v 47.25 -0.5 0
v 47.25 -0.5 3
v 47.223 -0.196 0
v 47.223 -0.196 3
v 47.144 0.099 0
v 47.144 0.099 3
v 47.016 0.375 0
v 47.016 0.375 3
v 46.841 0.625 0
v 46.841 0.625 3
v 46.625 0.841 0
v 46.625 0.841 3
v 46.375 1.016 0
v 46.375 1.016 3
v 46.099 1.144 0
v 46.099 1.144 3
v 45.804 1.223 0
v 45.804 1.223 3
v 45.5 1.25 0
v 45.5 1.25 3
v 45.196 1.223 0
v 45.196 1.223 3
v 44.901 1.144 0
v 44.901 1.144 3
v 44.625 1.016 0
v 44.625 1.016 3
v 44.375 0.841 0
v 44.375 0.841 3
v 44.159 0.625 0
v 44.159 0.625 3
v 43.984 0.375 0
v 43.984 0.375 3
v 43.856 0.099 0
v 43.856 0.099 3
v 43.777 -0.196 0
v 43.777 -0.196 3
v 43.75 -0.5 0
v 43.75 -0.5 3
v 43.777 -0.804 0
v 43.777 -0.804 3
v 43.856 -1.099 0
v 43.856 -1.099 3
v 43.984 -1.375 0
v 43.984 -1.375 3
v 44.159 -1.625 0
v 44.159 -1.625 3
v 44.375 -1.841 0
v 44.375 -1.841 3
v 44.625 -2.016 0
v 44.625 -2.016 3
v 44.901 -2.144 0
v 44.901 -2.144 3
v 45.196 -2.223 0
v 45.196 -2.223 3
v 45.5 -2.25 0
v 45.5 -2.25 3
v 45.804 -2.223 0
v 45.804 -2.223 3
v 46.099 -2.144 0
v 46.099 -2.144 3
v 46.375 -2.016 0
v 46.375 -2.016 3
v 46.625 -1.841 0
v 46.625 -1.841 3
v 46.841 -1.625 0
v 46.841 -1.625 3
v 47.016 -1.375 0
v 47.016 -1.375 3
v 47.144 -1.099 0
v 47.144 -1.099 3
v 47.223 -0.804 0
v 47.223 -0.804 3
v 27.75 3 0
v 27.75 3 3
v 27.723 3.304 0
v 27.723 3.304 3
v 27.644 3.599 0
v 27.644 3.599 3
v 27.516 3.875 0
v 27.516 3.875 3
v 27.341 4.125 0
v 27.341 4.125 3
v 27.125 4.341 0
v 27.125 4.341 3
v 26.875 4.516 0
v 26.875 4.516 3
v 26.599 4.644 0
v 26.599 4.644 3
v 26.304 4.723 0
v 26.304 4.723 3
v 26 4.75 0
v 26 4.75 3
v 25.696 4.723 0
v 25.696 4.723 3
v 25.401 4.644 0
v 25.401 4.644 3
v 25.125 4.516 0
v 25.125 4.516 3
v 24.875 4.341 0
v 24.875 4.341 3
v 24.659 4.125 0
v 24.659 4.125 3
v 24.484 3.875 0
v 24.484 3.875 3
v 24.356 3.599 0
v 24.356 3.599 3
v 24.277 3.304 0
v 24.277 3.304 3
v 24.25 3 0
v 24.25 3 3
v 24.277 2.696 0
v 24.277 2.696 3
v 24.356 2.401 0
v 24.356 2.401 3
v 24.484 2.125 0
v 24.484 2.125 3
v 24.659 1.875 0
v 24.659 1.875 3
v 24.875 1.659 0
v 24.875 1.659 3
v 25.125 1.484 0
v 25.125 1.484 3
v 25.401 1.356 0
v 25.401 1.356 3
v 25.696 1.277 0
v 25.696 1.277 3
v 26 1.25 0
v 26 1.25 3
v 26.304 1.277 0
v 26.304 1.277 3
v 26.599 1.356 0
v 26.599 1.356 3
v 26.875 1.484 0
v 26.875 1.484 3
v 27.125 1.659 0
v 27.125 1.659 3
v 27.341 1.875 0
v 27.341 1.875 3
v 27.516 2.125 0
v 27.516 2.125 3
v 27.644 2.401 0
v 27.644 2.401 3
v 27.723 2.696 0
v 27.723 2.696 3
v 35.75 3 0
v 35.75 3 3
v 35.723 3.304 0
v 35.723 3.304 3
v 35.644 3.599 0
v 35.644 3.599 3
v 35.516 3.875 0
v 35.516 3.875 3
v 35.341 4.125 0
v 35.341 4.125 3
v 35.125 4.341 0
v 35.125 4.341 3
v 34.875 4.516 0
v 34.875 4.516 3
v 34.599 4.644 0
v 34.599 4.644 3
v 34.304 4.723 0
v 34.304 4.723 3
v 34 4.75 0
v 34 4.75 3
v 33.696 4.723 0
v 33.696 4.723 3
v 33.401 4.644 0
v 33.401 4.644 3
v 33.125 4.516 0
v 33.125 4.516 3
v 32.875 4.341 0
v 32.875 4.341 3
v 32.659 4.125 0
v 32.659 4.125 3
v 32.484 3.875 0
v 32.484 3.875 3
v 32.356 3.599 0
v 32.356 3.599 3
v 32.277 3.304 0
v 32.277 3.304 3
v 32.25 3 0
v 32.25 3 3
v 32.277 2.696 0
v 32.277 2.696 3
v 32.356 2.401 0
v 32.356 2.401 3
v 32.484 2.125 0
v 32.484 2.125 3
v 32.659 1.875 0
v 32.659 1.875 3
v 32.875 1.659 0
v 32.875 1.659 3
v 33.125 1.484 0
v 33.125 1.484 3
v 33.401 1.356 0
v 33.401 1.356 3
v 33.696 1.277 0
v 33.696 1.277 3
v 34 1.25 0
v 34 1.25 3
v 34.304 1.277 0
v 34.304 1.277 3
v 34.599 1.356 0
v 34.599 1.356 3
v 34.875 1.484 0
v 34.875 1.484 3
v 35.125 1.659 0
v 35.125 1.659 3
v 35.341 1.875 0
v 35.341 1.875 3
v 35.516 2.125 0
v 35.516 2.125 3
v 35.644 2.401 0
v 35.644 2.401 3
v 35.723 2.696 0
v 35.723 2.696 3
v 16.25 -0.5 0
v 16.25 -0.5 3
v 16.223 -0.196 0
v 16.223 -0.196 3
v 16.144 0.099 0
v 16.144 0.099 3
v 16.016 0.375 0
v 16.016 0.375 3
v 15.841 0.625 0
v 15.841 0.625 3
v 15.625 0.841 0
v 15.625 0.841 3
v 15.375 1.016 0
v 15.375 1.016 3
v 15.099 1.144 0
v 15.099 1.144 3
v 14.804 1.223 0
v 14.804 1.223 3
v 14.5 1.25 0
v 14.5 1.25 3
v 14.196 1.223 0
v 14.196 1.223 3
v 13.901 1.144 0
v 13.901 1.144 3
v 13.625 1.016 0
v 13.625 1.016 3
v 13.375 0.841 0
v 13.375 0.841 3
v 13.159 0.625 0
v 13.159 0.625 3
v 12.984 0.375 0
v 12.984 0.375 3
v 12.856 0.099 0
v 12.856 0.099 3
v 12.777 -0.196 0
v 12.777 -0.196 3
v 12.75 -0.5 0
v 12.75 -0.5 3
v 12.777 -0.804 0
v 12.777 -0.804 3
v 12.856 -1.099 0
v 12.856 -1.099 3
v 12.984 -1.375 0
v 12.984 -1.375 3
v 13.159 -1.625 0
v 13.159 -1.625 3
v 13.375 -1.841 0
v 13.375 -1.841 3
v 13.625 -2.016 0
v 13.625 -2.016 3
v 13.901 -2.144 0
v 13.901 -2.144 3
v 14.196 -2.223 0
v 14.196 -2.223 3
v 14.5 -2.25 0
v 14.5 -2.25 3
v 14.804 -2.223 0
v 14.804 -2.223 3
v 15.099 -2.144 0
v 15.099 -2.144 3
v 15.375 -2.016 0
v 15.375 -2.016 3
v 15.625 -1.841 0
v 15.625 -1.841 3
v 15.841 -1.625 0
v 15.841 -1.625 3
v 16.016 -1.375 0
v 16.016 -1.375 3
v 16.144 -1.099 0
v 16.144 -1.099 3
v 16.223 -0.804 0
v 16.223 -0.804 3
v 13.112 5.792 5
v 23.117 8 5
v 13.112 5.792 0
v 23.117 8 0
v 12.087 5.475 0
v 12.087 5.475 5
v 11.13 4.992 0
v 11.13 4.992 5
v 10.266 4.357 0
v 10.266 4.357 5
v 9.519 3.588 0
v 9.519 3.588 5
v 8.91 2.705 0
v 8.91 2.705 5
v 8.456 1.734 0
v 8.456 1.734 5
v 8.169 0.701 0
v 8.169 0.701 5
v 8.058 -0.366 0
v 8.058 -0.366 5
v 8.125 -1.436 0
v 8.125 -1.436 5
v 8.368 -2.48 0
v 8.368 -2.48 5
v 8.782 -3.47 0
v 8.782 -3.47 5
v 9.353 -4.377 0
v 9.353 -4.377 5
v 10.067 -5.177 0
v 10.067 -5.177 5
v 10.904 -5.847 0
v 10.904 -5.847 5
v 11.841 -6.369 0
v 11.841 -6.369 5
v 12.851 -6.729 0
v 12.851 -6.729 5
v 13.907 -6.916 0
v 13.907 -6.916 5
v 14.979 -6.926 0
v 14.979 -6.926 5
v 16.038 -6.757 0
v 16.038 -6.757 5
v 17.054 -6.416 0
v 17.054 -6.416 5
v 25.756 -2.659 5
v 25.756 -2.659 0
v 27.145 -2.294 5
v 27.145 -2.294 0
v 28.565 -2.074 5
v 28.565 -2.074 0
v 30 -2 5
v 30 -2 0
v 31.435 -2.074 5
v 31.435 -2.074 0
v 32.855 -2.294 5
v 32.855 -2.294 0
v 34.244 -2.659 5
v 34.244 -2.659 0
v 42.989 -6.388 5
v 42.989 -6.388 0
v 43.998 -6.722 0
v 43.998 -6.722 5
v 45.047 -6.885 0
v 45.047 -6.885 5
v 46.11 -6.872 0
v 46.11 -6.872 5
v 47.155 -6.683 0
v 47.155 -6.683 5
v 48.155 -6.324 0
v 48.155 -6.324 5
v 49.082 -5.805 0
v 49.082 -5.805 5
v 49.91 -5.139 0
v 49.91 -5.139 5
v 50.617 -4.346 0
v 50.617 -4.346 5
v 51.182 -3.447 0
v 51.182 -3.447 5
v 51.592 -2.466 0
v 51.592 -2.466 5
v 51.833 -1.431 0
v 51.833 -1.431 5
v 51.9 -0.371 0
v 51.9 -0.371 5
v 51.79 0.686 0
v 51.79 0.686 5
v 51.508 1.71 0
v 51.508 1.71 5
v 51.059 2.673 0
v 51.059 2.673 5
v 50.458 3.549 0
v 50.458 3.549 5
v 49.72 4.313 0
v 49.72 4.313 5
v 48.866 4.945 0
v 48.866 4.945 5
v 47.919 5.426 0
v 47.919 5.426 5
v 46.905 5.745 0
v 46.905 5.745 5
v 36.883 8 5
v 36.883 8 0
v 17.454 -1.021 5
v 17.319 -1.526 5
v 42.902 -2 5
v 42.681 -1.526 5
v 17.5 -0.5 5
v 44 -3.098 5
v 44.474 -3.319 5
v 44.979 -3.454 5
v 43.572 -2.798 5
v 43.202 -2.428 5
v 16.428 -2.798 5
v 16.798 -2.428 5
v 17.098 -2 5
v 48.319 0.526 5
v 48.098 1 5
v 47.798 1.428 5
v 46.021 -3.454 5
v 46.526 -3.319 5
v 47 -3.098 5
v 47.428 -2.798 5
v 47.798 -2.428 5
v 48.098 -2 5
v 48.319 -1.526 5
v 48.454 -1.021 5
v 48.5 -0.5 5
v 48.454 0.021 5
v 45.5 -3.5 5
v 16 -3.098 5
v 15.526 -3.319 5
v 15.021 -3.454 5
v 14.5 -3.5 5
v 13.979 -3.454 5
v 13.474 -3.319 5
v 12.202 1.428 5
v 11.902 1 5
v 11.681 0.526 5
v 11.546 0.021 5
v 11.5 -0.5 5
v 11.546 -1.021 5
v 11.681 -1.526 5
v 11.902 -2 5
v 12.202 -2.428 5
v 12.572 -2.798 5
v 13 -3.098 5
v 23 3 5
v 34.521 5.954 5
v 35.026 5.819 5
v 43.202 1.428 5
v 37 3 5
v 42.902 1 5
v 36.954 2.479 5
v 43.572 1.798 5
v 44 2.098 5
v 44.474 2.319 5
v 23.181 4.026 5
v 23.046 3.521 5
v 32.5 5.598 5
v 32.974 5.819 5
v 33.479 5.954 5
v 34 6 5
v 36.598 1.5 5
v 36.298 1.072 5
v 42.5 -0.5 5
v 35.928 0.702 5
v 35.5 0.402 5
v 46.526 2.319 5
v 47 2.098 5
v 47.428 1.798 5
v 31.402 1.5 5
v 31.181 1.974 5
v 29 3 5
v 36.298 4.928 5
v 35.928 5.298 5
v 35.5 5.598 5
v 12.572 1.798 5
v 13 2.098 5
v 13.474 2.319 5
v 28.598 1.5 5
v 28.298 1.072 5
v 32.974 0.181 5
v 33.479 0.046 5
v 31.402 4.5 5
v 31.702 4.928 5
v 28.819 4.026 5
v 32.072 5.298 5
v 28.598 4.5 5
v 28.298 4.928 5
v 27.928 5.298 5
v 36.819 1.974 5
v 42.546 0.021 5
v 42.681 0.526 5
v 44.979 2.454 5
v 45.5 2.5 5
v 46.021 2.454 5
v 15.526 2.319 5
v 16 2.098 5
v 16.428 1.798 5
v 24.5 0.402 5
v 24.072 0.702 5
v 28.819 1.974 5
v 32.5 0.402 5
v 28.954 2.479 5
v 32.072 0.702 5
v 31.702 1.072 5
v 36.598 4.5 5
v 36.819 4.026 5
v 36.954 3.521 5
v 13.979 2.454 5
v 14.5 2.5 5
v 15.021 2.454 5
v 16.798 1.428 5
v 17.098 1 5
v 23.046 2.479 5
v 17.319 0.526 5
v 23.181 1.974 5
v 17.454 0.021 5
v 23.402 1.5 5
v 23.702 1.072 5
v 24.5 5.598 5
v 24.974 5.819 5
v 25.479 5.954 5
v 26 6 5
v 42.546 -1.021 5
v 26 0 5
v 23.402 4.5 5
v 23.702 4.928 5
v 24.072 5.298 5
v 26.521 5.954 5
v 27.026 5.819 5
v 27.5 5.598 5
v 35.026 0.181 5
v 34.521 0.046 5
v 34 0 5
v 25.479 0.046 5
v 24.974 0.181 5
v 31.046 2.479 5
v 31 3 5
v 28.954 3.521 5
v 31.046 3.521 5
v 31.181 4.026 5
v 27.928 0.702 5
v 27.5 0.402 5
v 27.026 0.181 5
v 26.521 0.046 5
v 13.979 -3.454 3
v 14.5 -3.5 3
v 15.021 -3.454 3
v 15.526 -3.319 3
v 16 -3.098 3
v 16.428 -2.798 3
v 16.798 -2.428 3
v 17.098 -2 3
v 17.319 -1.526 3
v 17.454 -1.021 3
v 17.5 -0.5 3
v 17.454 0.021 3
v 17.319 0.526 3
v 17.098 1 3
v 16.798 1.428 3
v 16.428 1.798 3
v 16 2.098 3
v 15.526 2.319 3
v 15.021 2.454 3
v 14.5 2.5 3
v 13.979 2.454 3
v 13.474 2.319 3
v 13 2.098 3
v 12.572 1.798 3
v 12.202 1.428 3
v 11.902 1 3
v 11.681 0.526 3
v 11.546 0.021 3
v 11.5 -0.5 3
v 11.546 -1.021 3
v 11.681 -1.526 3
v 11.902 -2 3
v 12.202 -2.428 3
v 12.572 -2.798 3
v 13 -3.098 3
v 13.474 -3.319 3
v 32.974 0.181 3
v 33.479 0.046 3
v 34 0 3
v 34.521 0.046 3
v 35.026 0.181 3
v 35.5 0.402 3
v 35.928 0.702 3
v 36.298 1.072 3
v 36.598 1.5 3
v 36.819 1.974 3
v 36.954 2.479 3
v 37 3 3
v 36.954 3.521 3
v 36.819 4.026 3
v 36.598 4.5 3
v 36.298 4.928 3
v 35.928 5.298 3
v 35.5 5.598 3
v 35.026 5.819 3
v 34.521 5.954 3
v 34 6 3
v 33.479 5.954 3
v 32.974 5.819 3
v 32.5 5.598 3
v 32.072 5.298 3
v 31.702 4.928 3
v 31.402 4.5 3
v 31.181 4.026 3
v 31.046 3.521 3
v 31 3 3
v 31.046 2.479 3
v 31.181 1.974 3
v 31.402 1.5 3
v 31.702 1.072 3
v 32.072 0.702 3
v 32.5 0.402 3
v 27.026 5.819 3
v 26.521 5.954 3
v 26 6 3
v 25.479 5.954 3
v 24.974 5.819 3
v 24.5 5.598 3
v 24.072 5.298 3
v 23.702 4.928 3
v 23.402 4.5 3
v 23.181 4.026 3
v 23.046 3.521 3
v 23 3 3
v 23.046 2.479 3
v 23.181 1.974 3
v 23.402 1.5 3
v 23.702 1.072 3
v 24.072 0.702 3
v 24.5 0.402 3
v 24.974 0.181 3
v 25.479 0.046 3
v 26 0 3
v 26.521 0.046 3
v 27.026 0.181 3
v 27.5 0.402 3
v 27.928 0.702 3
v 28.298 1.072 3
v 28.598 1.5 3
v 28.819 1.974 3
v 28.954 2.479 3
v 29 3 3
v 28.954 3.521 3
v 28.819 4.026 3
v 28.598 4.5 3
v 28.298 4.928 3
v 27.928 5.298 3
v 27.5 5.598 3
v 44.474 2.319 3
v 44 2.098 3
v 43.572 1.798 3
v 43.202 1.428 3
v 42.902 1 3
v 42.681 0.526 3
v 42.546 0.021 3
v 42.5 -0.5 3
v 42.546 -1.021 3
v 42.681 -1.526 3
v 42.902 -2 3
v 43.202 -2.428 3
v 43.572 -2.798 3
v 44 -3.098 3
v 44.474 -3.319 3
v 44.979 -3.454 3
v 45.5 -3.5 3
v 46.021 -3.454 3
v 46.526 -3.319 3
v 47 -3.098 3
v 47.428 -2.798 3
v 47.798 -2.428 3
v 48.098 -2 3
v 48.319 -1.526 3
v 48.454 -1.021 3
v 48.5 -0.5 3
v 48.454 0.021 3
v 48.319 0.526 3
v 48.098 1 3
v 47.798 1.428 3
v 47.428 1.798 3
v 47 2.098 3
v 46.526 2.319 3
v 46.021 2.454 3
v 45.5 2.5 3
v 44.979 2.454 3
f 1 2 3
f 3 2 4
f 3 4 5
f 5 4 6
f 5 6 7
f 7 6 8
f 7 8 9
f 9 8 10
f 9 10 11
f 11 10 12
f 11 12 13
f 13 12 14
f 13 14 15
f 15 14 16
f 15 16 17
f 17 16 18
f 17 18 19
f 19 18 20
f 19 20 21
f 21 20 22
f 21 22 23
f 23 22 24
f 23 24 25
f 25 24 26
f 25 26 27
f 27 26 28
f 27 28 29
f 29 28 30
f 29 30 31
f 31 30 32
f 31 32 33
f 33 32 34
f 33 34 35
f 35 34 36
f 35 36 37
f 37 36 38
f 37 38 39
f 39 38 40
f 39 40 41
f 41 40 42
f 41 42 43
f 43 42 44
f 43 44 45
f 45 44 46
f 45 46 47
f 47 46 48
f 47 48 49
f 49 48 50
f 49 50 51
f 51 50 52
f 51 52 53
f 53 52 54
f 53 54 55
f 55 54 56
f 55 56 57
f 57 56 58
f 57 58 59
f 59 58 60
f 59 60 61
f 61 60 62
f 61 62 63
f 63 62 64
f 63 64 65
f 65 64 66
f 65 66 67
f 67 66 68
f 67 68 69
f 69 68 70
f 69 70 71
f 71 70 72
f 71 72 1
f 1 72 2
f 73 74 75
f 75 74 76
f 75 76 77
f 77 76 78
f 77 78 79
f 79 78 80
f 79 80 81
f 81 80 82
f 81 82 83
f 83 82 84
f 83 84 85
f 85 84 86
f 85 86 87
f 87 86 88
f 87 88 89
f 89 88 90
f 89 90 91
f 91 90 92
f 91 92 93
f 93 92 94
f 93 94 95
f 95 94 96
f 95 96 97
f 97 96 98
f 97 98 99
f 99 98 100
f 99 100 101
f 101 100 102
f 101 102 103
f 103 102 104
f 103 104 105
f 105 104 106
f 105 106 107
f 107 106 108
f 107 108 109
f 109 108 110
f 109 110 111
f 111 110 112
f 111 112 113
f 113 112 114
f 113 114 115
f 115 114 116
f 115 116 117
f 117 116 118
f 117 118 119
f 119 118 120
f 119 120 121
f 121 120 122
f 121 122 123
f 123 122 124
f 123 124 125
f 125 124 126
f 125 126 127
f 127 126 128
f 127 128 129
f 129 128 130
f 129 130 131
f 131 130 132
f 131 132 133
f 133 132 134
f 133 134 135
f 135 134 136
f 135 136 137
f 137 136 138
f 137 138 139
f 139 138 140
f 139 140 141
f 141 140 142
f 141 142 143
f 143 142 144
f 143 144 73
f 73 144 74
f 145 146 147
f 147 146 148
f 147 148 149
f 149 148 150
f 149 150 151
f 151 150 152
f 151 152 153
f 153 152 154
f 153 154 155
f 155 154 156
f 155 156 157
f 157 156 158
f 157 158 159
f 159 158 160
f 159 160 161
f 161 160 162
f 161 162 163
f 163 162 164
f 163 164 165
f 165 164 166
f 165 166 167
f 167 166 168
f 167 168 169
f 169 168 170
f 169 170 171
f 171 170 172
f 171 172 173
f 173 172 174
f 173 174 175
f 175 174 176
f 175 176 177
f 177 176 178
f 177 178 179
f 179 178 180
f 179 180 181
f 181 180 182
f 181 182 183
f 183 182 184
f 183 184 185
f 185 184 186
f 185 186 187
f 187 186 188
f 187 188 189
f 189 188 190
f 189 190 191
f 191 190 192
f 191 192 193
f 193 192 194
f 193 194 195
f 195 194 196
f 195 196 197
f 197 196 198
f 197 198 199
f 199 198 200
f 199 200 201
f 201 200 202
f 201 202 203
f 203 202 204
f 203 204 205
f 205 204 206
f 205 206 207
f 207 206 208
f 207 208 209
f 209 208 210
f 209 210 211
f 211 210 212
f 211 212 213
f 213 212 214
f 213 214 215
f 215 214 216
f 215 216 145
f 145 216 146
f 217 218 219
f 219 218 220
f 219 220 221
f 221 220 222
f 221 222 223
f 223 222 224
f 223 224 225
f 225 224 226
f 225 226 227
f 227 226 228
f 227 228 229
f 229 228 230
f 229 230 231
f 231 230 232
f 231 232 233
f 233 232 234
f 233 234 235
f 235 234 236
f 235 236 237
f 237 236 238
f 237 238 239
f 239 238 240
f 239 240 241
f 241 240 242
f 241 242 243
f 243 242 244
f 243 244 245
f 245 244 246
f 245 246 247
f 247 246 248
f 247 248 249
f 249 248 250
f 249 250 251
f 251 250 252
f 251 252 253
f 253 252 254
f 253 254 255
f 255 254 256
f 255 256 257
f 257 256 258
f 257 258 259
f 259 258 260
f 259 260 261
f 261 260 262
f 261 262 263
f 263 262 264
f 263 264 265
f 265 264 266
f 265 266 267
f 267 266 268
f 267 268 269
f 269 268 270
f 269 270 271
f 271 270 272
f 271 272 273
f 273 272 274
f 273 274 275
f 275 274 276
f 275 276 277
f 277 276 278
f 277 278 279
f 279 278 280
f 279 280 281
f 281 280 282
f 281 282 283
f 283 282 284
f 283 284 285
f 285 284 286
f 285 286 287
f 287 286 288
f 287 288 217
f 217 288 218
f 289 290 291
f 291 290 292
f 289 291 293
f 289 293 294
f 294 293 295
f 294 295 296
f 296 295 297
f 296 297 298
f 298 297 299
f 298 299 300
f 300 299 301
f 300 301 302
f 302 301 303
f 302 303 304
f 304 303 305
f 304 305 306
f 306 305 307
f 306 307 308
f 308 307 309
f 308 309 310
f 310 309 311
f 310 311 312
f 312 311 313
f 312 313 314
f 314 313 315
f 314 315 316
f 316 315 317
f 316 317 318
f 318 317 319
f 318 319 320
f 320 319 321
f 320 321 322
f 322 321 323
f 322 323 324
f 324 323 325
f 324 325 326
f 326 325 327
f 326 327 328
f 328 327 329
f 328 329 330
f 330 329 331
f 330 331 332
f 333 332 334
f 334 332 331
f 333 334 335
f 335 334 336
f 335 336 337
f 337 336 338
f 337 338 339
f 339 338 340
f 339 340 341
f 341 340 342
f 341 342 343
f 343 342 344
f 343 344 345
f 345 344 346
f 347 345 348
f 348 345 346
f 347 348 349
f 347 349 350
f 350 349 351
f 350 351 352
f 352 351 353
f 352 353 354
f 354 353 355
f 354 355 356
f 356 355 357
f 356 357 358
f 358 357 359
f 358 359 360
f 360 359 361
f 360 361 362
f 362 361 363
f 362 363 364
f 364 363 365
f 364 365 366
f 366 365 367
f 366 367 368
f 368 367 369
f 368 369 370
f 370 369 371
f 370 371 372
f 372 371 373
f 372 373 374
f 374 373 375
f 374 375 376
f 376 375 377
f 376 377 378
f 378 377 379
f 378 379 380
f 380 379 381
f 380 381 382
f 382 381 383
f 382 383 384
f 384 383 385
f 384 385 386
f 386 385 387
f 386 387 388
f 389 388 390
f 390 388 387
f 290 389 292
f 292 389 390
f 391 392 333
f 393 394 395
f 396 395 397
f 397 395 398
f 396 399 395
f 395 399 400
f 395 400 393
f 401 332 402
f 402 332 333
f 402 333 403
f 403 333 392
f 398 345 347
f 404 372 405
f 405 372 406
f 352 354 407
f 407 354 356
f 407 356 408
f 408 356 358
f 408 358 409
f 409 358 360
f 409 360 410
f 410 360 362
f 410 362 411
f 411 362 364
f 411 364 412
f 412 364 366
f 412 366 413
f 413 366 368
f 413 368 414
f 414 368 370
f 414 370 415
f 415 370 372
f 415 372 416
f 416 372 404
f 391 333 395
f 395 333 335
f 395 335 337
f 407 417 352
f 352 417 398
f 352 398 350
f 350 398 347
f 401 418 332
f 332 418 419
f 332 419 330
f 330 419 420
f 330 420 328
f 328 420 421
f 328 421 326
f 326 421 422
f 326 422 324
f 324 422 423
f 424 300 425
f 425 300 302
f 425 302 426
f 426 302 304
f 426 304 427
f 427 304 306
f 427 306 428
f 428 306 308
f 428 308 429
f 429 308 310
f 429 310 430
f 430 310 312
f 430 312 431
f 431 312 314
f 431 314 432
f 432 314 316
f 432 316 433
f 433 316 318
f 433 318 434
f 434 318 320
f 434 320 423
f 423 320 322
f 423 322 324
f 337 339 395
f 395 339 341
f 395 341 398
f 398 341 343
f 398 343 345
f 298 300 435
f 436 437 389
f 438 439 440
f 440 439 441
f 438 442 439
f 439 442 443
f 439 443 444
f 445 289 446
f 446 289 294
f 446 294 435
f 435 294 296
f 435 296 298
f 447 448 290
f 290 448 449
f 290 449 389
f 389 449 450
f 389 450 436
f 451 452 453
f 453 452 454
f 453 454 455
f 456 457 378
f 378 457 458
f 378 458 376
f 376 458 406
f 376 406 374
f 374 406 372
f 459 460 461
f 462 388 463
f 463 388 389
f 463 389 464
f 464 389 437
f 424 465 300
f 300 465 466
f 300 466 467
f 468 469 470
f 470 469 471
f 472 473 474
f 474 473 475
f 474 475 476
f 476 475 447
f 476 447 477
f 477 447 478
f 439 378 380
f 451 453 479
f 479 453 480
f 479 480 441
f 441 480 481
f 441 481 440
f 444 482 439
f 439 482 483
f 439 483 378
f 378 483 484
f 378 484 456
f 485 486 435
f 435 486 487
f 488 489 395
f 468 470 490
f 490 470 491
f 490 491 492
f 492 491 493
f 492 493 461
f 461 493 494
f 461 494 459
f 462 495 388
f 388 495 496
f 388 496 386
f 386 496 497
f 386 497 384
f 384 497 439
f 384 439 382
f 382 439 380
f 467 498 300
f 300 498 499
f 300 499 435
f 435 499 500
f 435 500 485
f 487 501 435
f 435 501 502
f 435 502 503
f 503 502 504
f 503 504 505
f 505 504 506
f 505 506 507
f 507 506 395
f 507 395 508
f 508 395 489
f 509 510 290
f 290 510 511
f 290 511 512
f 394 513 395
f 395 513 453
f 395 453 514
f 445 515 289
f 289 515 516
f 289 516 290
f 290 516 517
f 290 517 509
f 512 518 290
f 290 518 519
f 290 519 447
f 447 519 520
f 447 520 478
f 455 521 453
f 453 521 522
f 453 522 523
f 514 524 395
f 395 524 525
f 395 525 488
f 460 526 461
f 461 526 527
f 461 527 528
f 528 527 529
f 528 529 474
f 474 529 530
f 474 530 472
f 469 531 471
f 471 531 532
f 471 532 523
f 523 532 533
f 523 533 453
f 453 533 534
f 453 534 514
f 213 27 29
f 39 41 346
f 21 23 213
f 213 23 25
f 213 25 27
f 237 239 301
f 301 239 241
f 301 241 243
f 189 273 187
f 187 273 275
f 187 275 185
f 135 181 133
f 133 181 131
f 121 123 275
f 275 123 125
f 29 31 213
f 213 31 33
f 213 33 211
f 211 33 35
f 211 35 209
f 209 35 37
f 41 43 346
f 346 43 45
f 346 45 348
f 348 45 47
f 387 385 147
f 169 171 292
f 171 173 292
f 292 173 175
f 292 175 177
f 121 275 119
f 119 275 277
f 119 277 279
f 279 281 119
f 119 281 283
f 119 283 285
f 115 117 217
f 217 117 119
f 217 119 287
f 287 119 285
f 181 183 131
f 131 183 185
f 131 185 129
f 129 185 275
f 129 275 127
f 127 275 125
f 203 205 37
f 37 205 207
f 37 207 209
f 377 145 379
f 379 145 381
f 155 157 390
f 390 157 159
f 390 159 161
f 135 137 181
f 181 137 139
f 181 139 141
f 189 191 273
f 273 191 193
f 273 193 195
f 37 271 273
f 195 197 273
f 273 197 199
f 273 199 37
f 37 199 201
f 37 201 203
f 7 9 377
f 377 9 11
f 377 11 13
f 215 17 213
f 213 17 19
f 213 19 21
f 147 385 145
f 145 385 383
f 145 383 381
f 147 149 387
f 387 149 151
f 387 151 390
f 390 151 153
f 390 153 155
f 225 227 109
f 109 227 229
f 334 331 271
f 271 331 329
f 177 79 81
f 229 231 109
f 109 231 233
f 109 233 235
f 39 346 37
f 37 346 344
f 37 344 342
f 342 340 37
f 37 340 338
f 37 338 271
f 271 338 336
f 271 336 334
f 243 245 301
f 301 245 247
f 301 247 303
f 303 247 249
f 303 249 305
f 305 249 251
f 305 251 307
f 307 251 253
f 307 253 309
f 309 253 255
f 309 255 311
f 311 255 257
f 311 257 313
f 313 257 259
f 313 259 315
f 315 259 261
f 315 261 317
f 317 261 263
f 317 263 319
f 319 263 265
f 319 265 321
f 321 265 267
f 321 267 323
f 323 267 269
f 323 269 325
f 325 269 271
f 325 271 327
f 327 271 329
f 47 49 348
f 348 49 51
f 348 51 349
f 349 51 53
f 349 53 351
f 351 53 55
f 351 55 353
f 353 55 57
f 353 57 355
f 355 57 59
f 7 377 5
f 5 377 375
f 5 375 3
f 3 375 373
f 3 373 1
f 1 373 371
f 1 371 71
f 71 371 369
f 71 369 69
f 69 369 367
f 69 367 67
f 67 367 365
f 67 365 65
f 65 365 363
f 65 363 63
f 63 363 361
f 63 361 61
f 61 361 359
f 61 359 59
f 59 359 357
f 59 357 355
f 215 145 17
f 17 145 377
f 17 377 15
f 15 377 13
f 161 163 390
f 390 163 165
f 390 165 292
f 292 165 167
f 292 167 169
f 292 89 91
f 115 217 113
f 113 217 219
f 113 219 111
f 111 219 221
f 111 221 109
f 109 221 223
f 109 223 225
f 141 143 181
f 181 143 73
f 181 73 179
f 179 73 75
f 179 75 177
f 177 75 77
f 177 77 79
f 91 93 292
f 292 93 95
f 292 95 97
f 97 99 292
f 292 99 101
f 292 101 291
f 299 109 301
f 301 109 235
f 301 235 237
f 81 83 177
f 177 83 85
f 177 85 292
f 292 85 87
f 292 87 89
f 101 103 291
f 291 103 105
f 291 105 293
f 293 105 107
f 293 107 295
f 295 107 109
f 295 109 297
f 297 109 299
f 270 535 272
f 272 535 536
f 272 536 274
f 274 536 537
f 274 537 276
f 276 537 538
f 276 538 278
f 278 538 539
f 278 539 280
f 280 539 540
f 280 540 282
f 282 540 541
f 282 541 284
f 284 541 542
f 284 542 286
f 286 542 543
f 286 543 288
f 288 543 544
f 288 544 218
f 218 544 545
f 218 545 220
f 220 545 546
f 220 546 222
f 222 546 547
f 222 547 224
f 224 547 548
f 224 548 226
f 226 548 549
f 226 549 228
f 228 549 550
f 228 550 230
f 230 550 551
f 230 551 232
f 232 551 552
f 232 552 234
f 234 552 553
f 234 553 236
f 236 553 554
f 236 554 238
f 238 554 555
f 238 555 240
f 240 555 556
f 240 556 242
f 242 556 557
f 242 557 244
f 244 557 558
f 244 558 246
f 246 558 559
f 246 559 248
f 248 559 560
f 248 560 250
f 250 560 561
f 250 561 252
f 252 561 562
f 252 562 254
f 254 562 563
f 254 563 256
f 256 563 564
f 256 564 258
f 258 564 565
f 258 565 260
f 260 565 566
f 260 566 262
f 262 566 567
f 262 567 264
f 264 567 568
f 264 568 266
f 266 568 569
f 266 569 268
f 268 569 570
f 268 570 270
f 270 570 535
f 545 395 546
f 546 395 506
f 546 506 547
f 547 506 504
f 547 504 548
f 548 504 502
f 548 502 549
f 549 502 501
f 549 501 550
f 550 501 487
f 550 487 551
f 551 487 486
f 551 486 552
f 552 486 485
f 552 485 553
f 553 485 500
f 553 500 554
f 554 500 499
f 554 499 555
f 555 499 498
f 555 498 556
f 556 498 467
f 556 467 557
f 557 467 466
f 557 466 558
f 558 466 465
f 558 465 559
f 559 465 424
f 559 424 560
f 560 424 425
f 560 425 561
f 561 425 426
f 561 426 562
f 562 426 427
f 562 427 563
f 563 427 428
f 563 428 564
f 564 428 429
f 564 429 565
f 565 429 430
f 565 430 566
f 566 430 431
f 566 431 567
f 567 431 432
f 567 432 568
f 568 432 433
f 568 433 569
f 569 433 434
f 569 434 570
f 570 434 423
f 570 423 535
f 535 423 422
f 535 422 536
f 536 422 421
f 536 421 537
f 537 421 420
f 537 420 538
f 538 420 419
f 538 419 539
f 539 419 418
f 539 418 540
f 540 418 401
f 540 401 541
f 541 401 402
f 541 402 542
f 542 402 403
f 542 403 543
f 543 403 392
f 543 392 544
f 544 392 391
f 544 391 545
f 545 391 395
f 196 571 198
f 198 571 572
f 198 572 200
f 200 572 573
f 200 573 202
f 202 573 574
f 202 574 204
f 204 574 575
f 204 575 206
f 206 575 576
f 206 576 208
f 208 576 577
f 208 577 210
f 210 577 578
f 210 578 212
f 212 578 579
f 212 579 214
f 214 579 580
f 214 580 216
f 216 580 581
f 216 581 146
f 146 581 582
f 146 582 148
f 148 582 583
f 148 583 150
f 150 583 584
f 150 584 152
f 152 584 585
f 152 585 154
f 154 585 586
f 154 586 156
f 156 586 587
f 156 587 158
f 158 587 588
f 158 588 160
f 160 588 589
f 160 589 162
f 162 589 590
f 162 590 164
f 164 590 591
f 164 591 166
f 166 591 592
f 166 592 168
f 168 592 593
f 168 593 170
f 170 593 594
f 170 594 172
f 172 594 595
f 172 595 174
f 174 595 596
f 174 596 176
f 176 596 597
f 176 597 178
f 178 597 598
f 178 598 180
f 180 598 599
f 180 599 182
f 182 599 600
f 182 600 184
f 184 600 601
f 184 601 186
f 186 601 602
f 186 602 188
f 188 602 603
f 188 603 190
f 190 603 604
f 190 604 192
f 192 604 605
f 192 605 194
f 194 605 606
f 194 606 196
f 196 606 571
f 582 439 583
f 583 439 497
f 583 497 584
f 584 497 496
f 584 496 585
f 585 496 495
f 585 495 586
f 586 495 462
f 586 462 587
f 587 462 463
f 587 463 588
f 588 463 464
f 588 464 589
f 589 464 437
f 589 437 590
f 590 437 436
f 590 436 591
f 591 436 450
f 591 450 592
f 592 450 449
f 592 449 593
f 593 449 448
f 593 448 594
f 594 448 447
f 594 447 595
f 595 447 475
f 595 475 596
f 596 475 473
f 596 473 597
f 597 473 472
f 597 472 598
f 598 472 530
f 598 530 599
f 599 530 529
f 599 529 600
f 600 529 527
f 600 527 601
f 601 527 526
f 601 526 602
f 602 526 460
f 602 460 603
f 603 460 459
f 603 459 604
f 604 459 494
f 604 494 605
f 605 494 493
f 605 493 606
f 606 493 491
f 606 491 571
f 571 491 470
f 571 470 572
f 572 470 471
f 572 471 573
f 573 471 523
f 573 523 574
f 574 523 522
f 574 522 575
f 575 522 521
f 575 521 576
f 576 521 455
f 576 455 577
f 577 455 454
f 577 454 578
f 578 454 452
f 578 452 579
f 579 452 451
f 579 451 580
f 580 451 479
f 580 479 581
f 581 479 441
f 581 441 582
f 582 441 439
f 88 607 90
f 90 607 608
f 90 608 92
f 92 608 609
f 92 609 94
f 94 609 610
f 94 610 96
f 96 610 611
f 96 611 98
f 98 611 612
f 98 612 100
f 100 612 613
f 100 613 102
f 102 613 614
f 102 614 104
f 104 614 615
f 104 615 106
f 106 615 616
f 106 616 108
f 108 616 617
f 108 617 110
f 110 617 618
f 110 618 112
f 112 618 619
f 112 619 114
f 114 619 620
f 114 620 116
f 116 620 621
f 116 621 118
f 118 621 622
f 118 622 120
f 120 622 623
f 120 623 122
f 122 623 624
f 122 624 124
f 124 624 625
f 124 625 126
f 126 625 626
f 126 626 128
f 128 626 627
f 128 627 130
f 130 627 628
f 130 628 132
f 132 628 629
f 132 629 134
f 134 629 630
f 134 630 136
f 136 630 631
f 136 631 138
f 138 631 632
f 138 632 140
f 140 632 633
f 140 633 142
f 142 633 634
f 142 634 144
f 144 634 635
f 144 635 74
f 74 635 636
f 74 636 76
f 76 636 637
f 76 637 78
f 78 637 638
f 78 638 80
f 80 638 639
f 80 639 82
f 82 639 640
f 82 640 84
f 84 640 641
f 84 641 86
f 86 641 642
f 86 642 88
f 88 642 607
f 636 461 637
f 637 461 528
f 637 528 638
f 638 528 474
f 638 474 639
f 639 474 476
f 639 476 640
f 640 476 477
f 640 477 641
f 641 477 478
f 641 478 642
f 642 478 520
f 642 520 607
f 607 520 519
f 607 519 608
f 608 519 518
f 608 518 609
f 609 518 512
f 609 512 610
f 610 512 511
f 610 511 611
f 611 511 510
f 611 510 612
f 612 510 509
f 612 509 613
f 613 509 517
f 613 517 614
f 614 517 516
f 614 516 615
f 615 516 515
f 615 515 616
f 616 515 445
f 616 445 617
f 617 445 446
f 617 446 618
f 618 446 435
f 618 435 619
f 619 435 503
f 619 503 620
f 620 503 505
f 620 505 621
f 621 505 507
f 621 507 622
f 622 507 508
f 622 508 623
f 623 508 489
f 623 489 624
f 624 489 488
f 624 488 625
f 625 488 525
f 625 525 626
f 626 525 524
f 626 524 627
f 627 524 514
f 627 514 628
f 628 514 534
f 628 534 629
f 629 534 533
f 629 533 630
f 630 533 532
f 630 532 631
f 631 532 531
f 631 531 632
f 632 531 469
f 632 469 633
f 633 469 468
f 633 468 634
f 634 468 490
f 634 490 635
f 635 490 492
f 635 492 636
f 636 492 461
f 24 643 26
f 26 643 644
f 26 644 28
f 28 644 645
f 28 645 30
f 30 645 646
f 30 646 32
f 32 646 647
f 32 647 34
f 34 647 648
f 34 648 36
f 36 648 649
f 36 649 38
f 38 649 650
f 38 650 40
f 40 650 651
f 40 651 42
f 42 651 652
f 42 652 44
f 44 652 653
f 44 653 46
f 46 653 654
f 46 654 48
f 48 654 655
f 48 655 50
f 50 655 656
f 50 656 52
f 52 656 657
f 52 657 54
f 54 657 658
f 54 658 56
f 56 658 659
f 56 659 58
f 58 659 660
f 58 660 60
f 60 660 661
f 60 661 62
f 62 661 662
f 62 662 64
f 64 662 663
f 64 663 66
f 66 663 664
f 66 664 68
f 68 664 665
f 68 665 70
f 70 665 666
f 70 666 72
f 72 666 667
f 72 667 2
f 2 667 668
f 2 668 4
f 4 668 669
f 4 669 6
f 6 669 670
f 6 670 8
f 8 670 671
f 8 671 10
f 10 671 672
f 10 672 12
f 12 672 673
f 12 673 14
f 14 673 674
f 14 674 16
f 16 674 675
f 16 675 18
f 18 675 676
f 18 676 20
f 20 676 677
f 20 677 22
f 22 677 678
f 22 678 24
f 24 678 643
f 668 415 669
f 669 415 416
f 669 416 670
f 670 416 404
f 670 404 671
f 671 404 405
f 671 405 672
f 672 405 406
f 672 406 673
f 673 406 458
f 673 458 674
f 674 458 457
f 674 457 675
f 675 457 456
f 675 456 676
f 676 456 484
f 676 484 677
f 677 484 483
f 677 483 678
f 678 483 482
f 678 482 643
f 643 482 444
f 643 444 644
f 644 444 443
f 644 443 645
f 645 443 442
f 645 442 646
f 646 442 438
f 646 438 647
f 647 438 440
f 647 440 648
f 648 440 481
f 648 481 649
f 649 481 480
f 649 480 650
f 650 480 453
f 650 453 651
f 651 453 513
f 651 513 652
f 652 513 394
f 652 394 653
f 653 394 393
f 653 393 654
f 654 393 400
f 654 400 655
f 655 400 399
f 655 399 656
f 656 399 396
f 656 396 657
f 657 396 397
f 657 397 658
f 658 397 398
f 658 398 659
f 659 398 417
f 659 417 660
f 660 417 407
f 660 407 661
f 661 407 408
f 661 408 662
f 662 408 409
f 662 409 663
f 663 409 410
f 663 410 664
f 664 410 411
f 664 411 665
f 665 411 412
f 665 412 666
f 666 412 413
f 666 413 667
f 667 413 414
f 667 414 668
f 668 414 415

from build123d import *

# Parameters (mm, degrees)
BOSS_EXTRUDE1_DEPTH     = 5
CUT_EXTRUDE1_DEPTH      = 53.75142939
CUT_EXTRUDE1_DEPTH_BACK = 53.75142939
SKETCH2_R               = 1.75
SKETCH5_R               = 3
CUT_EXTRUDE2_DEPTH      = 2


with BuildPart() as part:
    # Sketch1 → Boss-Extrude1 (new body)
    with BuildSketch(Plane.XY):
        with BuildLine():
            Line((23.11684397, 8), (36.88315603, 8))
            Line((36.88315603, 8), (46.90520921, 5.744848006))
            ThreePointArc((46.90520921, 5.744848006), (51.591551748, -2.466147717), (42.989140572, -6.387981358))
            Line((42.989140572, -6.387981358), (34.244441462, -2.658908715))
            ThreePointArc((34.244441462, -2.658908715), (30, -2), (25.755558538, -2.658908715))
            Line((25.755558538, -2.658908715), (17.05409045, -6.415729603))
            ThreePointArc((17.05409045, -6.415729603), (8.36828995, -2.480244081), (13.111532947, 5.792169261))
            Line((13.111532947, 5.792169261), (23.11684397, 8))
        make_face()
    extrude(amount=BOSS_EXTRUDE1_DEPTH)

    # Sketch2 → Cut-Extrude1 (cut, two sides: drawn at the far end of the back side and taken through both)
    with BuildSketch(Plane.XY.offset(5).offset(-CUT_EXTRUDE1_DEPTH_BACK)):
        with Locations((45.5, -0.5)):
            Circle(SKETCH2_R)
        with Locations((14.5, -0.5)):
            Circle(SKETCH2_R)
        with Locations((26, 3)):
            Circle(SKETCH2_R)
        with Locations((34, 3)):
            Circle(SKETCH2_R)
    extrude(amount=CUT_EXTRUDE1_DEPTH + CUT_EXTRUDE1_DEPTH_BACK, mode=Mode.SUBTRACT)

    # Sketch5 → Cut-Extrude2 (cut)
    with BuildSketch(Plane.XY.offset(5)):
        with Locations((26, 3)):
            Circle(SKETCH5_R)
        with Locations((34, 3)):
            Circle(SKETCH5_R)
        with Locations((45.5, -0.5)):
            Circle(SKETCH5_R)
        with Locations((14.5, -0.5)):
            Circle(SKETCH5_R)
    extrude(amount=-CUT_EXTRUDE2_DEPTH, mode=Mode.SUBTRACT)


solid = part.part
